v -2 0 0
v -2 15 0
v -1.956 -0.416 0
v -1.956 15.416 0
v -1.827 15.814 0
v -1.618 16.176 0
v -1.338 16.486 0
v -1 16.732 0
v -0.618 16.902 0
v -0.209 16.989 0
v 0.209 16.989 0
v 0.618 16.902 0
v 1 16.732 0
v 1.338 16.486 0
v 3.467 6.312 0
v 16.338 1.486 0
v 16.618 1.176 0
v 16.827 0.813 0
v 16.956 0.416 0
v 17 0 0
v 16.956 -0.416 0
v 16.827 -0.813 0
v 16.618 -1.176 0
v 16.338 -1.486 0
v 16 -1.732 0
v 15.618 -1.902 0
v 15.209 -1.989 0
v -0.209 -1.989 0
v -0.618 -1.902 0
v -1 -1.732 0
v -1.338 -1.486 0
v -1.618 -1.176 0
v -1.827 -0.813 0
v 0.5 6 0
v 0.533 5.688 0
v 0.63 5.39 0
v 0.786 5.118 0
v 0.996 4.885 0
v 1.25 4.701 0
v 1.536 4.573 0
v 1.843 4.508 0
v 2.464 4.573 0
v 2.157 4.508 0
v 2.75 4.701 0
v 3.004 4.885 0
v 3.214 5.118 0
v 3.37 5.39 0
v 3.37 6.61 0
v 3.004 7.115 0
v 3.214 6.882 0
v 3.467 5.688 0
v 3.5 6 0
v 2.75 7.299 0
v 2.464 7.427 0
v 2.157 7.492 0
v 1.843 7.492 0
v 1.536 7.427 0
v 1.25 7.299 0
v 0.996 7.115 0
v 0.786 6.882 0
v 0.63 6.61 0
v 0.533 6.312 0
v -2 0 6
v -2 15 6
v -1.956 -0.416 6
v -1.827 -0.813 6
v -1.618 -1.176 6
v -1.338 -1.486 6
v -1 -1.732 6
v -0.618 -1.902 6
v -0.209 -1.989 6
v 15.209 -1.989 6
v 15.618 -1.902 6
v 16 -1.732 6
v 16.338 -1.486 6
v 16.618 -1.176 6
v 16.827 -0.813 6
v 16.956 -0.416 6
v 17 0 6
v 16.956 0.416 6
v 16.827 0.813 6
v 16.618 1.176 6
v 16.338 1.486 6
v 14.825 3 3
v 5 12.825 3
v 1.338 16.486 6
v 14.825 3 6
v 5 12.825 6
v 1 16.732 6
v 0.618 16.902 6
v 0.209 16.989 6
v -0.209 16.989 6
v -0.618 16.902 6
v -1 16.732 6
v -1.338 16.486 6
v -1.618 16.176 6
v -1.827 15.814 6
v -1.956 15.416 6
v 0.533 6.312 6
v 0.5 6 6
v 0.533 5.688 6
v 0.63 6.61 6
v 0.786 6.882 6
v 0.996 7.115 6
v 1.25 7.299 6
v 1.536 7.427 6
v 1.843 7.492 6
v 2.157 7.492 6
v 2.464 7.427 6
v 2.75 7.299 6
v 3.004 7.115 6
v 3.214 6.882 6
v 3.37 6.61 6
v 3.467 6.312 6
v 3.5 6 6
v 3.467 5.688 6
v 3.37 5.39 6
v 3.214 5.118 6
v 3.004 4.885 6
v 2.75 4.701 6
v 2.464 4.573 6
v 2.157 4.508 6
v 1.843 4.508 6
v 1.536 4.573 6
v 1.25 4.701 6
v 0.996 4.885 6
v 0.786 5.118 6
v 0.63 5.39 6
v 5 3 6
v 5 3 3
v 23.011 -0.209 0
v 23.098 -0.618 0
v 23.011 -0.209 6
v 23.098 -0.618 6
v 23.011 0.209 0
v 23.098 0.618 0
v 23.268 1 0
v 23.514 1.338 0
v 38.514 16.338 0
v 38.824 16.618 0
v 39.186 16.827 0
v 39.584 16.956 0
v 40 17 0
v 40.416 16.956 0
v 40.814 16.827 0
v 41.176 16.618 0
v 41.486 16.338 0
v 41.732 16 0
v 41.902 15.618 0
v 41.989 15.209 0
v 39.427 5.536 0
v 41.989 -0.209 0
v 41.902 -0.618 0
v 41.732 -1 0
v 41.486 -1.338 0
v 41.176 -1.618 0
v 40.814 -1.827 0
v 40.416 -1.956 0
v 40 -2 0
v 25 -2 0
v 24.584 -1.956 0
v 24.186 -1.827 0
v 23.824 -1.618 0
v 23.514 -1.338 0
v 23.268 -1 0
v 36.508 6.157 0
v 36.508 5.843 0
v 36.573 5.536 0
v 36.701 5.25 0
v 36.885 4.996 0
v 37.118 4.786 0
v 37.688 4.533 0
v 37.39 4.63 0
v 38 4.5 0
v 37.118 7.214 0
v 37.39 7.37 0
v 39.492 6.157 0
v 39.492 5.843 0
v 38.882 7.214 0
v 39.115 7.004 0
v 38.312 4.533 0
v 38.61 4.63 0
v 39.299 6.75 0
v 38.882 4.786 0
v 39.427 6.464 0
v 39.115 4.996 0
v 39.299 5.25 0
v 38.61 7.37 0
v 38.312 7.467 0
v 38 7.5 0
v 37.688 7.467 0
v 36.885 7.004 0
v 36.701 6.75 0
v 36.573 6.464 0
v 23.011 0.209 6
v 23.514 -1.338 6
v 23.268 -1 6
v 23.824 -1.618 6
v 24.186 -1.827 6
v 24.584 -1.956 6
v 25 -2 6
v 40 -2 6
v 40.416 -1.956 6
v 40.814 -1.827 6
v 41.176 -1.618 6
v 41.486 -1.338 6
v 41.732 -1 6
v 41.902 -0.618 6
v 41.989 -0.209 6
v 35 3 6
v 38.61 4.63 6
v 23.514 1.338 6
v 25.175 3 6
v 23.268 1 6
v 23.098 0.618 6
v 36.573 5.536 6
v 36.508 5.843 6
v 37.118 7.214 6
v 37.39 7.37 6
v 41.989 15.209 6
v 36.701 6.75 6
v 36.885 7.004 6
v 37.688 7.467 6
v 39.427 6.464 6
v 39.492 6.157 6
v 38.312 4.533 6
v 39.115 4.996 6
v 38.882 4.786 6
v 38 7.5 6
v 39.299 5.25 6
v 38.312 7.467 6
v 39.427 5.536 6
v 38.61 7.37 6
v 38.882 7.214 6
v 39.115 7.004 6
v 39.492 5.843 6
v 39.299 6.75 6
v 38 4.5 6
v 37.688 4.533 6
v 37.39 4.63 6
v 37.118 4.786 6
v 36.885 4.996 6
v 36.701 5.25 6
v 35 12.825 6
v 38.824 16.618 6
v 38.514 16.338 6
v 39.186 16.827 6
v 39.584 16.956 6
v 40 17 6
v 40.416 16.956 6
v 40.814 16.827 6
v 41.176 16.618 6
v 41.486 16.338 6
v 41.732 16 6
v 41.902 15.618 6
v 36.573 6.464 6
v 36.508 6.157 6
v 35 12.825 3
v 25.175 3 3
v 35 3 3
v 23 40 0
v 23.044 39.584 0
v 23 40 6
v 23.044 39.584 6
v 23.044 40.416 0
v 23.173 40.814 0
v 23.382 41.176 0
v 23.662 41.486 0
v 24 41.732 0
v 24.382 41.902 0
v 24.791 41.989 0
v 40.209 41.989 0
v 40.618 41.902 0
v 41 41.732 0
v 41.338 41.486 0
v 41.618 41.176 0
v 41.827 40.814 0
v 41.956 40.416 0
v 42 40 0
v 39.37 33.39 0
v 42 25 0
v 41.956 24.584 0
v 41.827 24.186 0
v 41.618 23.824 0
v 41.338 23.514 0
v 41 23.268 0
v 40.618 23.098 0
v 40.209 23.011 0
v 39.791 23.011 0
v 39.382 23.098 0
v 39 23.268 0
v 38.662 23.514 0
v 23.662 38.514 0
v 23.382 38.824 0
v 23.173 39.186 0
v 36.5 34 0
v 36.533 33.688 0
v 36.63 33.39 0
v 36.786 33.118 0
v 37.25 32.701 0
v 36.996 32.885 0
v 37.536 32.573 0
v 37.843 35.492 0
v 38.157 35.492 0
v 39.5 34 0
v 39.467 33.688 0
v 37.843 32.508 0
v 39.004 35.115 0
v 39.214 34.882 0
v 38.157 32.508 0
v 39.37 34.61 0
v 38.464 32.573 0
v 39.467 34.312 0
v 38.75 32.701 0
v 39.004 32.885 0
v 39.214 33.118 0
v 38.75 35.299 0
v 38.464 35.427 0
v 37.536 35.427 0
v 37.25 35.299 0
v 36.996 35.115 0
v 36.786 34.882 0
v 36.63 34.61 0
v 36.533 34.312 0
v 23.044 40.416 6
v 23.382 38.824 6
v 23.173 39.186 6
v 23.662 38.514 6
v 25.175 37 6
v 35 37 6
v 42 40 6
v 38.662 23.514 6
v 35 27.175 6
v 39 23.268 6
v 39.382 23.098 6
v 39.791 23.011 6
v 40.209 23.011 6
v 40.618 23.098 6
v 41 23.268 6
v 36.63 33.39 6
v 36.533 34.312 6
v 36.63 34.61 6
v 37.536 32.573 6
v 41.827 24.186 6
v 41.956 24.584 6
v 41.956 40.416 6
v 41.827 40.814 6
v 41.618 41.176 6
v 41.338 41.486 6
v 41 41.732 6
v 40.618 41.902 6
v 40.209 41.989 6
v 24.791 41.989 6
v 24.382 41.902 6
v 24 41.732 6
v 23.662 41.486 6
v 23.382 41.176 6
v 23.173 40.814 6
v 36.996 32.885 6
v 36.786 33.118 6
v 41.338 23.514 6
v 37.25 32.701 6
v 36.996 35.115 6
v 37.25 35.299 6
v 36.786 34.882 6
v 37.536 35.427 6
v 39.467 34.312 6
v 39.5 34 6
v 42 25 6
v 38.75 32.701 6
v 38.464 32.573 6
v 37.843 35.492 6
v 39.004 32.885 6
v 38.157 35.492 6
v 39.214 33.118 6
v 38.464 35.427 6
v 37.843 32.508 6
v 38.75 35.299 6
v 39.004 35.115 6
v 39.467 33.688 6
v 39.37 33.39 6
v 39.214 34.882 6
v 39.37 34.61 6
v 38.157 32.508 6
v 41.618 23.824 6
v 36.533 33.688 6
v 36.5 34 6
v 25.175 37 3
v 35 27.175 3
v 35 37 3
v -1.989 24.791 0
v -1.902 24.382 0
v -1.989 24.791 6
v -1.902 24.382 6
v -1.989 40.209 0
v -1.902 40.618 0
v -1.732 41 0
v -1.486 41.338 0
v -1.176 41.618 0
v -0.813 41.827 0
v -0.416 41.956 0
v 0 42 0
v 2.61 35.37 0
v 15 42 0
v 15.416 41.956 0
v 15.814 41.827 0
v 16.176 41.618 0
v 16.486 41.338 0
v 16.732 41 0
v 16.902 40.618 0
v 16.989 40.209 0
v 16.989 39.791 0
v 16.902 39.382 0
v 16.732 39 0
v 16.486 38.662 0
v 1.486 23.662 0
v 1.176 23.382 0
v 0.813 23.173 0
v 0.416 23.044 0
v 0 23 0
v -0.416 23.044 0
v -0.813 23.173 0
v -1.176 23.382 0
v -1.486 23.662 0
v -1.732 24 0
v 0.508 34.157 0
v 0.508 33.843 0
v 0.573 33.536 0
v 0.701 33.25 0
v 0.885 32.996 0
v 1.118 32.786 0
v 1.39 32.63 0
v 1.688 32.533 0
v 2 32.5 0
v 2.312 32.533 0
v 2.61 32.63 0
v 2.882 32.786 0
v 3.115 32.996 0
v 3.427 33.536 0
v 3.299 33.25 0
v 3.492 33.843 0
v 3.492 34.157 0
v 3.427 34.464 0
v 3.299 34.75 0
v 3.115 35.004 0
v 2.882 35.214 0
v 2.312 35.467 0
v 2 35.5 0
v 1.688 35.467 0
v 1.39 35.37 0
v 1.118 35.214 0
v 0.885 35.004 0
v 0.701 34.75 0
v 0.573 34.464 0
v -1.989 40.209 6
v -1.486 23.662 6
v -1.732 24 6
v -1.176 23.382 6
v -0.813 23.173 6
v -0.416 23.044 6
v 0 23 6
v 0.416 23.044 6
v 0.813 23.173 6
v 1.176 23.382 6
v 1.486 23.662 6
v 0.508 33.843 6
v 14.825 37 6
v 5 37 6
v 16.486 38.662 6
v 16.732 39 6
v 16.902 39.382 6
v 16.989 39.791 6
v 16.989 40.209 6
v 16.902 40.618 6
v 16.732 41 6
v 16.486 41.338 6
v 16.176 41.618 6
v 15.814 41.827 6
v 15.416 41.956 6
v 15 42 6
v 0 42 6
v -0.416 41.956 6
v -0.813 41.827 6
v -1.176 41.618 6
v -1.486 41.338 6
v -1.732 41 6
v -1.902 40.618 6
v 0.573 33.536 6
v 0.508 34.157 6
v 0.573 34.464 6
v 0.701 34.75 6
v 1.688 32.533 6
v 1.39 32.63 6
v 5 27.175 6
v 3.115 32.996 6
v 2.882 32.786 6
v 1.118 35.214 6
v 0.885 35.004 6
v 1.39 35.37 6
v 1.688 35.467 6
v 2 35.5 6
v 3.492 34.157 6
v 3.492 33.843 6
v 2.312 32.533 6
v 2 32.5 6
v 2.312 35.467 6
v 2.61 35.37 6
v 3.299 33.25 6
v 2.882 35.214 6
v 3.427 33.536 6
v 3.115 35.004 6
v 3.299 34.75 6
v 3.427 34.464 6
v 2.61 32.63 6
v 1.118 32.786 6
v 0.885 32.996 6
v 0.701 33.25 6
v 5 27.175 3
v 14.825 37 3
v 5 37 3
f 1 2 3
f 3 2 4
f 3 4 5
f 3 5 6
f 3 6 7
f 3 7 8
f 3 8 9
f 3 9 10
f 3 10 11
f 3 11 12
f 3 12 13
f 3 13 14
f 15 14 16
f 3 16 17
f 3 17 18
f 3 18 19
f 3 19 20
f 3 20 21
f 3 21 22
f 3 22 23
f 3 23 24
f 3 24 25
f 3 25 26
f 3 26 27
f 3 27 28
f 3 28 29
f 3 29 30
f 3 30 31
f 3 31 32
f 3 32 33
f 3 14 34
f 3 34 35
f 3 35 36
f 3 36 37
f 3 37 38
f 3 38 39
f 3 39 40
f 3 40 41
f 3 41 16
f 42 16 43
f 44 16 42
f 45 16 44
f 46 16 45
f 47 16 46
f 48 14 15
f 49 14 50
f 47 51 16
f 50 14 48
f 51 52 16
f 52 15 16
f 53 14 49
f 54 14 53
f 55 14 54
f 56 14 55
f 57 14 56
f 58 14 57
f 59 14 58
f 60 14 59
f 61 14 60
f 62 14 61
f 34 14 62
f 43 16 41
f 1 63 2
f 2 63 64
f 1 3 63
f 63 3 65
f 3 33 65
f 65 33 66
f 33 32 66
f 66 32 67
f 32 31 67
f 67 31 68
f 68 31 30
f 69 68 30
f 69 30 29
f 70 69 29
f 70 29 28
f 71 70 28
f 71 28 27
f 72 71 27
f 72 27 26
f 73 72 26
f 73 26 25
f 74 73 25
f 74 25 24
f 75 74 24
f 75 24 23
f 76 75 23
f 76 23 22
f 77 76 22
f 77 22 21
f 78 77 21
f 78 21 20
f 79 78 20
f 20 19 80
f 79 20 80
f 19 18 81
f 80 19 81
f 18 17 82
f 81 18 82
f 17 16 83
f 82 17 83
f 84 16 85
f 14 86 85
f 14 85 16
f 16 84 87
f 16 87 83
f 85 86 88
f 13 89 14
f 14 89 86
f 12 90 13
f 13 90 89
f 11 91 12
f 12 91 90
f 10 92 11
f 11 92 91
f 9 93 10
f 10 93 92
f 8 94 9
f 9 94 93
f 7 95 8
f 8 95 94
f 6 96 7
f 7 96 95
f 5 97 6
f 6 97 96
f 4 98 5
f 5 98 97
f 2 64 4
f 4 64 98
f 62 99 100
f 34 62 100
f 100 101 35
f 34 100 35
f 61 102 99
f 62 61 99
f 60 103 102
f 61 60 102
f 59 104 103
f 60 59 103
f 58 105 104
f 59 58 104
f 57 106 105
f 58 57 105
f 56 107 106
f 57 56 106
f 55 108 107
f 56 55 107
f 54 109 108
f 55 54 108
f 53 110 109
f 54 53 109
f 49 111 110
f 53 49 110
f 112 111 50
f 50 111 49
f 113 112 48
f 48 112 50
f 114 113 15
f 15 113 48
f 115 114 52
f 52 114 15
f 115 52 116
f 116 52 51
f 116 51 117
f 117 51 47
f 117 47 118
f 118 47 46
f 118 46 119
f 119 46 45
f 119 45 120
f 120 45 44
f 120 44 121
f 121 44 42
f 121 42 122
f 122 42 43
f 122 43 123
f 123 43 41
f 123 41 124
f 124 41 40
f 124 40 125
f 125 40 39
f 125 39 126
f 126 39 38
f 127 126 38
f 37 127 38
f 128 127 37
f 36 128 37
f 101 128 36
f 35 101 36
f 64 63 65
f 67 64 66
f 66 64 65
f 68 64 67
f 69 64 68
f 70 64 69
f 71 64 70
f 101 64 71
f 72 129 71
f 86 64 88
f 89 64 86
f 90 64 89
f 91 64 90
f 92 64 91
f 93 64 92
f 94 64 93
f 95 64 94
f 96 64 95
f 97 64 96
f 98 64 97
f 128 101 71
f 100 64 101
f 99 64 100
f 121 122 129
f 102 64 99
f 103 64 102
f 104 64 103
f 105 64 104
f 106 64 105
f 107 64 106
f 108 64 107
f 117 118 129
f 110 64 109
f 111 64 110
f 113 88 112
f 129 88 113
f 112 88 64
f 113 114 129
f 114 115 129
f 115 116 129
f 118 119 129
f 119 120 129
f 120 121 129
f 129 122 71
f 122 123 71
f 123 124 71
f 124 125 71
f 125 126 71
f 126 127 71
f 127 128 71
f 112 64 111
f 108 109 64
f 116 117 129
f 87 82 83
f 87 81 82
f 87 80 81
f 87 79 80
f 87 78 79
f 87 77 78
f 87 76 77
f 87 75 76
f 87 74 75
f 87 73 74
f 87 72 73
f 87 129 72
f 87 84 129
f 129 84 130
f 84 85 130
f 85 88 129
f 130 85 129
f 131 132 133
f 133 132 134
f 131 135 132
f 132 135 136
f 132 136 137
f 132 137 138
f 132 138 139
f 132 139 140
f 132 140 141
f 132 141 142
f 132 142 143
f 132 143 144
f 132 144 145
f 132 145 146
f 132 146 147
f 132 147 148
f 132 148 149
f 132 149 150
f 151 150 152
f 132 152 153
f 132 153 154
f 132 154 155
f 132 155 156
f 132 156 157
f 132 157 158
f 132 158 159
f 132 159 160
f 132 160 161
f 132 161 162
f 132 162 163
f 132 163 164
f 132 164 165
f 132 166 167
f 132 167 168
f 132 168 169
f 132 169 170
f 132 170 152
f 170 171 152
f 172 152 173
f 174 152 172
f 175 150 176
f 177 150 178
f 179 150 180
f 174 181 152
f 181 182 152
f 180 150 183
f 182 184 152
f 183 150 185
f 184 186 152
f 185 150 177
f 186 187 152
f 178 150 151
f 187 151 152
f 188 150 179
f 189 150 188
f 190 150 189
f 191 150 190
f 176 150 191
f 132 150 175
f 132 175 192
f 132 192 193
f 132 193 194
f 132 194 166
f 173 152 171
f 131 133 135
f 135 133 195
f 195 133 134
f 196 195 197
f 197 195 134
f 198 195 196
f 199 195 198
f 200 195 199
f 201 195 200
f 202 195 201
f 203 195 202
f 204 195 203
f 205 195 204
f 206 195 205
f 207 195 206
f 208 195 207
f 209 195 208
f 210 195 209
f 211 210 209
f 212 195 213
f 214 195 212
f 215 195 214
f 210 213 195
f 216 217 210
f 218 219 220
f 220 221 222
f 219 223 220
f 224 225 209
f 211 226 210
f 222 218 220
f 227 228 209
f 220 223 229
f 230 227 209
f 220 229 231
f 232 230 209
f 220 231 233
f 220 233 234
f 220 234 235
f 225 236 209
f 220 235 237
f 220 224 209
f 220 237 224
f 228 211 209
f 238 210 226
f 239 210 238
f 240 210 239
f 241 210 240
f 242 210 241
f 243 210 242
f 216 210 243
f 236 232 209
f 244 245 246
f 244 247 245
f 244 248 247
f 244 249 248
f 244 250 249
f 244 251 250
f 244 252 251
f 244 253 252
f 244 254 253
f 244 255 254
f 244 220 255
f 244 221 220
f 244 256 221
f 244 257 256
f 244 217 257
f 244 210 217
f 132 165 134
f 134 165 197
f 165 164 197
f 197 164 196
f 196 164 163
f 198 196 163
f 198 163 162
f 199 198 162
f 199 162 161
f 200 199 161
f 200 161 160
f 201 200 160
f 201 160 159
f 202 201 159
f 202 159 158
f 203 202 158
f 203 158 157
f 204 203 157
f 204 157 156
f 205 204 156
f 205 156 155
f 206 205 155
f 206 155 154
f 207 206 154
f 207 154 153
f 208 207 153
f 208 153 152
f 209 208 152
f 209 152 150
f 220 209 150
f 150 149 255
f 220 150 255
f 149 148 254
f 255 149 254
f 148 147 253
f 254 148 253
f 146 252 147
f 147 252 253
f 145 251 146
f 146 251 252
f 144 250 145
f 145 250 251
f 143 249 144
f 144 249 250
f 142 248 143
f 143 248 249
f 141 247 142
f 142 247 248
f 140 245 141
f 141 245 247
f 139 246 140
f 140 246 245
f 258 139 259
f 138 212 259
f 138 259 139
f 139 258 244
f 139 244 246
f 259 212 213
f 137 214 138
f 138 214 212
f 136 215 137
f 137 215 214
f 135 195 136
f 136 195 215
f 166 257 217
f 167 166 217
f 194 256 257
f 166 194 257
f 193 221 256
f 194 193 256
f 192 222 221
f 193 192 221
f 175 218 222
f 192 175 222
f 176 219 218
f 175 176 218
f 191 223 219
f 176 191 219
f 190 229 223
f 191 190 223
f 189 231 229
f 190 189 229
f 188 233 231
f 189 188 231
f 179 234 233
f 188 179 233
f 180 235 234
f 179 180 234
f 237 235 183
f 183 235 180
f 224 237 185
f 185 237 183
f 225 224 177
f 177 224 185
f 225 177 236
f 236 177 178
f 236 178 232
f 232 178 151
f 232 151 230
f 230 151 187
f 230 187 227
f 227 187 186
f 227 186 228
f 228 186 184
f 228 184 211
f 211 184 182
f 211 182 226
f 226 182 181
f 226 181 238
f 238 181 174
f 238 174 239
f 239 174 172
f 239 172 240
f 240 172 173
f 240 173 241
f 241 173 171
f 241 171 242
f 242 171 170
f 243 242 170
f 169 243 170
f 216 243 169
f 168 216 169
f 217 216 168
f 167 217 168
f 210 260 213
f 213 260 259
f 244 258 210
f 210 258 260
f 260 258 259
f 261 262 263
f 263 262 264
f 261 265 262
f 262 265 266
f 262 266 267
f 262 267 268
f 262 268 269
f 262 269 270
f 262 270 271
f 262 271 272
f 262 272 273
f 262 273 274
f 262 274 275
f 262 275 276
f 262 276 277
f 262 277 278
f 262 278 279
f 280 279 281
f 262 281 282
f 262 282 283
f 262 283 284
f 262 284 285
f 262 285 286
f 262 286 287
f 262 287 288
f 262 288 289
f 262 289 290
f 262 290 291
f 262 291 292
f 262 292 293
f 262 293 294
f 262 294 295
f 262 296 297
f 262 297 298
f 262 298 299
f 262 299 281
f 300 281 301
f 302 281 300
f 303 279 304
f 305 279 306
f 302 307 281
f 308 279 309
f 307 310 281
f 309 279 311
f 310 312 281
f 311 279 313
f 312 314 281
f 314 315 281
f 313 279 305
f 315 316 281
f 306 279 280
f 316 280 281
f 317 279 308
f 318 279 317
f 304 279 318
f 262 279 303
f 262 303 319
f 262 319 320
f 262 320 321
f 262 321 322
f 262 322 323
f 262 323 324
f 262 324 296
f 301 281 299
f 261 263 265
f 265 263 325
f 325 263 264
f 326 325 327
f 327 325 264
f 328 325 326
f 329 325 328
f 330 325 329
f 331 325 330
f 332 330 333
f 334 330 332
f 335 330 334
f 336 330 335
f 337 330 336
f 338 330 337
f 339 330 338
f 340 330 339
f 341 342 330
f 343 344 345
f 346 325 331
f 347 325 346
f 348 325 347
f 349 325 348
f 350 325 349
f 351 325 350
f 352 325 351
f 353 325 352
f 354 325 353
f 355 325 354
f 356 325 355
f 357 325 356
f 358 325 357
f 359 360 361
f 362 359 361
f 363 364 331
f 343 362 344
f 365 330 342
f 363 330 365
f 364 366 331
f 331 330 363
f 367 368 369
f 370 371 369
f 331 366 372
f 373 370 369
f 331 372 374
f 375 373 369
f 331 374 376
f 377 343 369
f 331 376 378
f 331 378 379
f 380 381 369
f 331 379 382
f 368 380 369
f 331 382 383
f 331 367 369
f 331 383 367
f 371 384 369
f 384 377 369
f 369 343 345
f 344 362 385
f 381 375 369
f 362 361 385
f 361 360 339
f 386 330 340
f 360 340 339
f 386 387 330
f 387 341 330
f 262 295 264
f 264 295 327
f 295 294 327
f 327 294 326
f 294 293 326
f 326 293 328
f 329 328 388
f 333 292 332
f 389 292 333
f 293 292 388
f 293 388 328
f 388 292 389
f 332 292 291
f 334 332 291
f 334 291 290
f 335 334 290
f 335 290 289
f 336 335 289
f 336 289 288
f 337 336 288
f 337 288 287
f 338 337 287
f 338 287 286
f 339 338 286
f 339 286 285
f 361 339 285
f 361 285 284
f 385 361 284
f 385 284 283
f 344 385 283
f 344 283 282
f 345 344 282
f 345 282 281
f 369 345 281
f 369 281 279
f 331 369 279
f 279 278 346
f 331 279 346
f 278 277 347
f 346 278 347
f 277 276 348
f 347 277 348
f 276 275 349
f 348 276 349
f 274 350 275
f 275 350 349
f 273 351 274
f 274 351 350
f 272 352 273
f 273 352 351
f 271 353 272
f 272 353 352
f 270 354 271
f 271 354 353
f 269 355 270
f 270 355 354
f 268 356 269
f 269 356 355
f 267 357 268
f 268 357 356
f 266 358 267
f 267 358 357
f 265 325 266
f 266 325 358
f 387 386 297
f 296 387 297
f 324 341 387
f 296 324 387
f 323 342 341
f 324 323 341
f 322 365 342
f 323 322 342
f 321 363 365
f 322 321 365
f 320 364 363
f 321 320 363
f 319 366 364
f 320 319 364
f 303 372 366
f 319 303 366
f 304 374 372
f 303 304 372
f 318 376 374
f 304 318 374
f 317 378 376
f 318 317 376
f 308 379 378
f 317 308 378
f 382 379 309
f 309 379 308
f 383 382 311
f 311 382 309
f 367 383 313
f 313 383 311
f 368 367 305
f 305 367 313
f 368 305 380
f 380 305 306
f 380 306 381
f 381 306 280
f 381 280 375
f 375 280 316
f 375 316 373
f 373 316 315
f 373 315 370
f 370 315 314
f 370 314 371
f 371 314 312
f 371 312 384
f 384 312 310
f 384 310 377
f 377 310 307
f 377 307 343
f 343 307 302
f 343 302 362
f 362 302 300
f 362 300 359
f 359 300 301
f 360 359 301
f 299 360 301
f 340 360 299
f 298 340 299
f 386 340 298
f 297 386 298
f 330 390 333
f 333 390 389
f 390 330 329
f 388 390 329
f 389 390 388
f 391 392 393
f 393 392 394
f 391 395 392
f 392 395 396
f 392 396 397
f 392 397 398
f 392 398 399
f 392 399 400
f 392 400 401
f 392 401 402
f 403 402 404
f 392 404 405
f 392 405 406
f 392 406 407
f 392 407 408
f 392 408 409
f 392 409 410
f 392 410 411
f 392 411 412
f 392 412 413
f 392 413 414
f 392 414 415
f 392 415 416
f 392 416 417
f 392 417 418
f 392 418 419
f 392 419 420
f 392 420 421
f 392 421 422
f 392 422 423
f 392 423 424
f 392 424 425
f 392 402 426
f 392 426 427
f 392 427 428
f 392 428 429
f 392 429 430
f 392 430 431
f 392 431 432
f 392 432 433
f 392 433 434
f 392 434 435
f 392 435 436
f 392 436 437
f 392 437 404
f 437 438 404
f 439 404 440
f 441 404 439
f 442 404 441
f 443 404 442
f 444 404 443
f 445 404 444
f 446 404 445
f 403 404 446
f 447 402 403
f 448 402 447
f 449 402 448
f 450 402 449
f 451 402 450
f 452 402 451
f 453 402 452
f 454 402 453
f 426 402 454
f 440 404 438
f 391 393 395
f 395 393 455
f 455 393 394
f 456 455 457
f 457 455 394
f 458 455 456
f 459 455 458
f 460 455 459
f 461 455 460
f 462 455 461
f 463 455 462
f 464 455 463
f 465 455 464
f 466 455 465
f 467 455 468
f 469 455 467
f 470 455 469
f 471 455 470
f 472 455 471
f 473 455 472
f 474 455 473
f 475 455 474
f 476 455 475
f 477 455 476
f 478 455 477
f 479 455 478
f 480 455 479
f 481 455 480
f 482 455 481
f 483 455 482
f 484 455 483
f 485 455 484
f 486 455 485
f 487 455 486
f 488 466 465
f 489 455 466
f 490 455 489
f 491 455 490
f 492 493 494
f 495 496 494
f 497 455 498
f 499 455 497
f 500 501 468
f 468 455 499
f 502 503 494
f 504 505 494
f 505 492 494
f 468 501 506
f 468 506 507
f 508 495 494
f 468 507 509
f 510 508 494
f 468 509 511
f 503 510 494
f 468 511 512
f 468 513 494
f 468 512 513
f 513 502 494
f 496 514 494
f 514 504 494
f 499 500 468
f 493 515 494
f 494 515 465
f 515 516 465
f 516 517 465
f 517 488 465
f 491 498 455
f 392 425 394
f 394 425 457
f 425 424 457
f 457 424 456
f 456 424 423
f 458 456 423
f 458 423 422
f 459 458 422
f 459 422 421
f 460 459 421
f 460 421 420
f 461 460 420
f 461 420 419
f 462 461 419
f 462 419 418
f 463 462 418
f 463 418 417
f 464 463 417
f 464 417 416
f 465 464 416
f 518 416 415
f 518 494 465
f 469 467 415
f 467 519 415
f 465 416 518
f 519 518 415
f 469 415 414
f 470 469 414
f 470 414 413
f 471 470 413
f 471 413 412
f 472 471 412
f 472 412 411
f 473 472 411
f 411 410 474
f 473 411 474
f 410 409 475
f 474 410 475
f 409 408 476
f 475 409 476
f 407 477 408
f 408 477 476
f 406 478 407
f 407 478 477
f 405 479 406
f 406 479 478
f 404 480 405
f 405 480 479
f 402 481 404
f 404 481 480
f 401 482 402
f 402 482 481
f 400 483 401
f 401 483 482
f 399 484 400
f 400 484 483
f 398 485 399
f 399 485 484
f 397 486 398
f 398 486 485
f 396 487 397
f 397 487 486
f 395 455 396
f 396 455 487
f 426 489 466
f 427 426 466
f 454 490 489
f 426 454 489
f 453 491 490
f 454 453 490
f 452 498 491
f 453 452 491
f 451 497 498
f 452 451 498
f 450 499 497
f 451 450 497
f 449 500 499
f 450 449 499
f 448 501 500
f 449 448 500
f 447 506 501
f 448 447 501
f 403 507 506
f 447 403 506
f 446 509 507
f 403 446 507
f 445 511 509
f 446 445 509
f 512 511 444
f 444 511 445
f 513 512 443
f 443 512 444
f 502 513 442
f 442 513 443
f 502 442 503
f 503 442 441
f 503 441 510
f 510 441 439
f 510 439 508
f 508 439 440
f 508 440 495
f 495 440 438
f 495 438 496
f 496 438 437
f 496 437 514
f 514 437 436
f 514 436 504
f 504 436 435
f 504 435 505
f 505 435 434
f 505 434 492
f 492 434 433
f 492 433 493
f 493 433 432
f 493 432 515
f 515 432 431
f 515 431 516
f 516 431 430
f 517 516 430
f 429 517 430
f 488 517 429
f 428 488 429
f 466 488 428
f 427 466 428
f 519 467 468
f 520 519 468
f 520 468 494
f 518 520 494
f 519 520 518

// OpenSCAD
$fn=30;


difference(){
  hull(){
    translate([0,0,0])cylinder(r=2, h=6);
    translate([15,0,0])cylinder(r=2, h=6);
    translate([0,15,0])cylinder(r=2, h=6);
  }
  translate ([5,3,3]) cube([12,12,3]);
  translate ([2,6,0]) cylinder(r=1.5,h=6);
}

translate([40,0,0])rotate([0,0,90]) 
difference(){
  hull(){
    translate([0,0,0])cylinder(r=2, h=6);
    translate([15,0,0])cylinder(r=2, h=6);
    translate([0,15,0])cylinder(r=2, h=6);
  }
  translate ([3,5,3]) cube([12,12,3]);
  translate ([6,2,0]) cylinder(r=1.5,h=6);
}

translate([40,40,0])rotate([0,0,180]) 
difference(){
  hull(){
    translate([0,0,0])cylinder(r=2, h=6);
    translate([15,0,0])cylinder(r=2, h=6);
    translate([0,15,0])cylinder(r=2, h=6);
  }
  translate ([5,3,3]) cube([12,12,3]);
  translate ([2,6,0]) cylinder(r=1.5,h=6);
}

translate([0,40,0])rotate([0,0,270]) 
difference(){
  hull(){
    translate([0,0,0])cylinder(r=2, h=6);
    translate([15,0,0])cylinder(r=2, h=6);
    translate([0,15,0])cylinder(r=2, h=6);
  }
  translate ([3,5,3]) cube([12,12,3]);
  translate ([6,2,0]) cylinder(r=1.5,h=6);
}
